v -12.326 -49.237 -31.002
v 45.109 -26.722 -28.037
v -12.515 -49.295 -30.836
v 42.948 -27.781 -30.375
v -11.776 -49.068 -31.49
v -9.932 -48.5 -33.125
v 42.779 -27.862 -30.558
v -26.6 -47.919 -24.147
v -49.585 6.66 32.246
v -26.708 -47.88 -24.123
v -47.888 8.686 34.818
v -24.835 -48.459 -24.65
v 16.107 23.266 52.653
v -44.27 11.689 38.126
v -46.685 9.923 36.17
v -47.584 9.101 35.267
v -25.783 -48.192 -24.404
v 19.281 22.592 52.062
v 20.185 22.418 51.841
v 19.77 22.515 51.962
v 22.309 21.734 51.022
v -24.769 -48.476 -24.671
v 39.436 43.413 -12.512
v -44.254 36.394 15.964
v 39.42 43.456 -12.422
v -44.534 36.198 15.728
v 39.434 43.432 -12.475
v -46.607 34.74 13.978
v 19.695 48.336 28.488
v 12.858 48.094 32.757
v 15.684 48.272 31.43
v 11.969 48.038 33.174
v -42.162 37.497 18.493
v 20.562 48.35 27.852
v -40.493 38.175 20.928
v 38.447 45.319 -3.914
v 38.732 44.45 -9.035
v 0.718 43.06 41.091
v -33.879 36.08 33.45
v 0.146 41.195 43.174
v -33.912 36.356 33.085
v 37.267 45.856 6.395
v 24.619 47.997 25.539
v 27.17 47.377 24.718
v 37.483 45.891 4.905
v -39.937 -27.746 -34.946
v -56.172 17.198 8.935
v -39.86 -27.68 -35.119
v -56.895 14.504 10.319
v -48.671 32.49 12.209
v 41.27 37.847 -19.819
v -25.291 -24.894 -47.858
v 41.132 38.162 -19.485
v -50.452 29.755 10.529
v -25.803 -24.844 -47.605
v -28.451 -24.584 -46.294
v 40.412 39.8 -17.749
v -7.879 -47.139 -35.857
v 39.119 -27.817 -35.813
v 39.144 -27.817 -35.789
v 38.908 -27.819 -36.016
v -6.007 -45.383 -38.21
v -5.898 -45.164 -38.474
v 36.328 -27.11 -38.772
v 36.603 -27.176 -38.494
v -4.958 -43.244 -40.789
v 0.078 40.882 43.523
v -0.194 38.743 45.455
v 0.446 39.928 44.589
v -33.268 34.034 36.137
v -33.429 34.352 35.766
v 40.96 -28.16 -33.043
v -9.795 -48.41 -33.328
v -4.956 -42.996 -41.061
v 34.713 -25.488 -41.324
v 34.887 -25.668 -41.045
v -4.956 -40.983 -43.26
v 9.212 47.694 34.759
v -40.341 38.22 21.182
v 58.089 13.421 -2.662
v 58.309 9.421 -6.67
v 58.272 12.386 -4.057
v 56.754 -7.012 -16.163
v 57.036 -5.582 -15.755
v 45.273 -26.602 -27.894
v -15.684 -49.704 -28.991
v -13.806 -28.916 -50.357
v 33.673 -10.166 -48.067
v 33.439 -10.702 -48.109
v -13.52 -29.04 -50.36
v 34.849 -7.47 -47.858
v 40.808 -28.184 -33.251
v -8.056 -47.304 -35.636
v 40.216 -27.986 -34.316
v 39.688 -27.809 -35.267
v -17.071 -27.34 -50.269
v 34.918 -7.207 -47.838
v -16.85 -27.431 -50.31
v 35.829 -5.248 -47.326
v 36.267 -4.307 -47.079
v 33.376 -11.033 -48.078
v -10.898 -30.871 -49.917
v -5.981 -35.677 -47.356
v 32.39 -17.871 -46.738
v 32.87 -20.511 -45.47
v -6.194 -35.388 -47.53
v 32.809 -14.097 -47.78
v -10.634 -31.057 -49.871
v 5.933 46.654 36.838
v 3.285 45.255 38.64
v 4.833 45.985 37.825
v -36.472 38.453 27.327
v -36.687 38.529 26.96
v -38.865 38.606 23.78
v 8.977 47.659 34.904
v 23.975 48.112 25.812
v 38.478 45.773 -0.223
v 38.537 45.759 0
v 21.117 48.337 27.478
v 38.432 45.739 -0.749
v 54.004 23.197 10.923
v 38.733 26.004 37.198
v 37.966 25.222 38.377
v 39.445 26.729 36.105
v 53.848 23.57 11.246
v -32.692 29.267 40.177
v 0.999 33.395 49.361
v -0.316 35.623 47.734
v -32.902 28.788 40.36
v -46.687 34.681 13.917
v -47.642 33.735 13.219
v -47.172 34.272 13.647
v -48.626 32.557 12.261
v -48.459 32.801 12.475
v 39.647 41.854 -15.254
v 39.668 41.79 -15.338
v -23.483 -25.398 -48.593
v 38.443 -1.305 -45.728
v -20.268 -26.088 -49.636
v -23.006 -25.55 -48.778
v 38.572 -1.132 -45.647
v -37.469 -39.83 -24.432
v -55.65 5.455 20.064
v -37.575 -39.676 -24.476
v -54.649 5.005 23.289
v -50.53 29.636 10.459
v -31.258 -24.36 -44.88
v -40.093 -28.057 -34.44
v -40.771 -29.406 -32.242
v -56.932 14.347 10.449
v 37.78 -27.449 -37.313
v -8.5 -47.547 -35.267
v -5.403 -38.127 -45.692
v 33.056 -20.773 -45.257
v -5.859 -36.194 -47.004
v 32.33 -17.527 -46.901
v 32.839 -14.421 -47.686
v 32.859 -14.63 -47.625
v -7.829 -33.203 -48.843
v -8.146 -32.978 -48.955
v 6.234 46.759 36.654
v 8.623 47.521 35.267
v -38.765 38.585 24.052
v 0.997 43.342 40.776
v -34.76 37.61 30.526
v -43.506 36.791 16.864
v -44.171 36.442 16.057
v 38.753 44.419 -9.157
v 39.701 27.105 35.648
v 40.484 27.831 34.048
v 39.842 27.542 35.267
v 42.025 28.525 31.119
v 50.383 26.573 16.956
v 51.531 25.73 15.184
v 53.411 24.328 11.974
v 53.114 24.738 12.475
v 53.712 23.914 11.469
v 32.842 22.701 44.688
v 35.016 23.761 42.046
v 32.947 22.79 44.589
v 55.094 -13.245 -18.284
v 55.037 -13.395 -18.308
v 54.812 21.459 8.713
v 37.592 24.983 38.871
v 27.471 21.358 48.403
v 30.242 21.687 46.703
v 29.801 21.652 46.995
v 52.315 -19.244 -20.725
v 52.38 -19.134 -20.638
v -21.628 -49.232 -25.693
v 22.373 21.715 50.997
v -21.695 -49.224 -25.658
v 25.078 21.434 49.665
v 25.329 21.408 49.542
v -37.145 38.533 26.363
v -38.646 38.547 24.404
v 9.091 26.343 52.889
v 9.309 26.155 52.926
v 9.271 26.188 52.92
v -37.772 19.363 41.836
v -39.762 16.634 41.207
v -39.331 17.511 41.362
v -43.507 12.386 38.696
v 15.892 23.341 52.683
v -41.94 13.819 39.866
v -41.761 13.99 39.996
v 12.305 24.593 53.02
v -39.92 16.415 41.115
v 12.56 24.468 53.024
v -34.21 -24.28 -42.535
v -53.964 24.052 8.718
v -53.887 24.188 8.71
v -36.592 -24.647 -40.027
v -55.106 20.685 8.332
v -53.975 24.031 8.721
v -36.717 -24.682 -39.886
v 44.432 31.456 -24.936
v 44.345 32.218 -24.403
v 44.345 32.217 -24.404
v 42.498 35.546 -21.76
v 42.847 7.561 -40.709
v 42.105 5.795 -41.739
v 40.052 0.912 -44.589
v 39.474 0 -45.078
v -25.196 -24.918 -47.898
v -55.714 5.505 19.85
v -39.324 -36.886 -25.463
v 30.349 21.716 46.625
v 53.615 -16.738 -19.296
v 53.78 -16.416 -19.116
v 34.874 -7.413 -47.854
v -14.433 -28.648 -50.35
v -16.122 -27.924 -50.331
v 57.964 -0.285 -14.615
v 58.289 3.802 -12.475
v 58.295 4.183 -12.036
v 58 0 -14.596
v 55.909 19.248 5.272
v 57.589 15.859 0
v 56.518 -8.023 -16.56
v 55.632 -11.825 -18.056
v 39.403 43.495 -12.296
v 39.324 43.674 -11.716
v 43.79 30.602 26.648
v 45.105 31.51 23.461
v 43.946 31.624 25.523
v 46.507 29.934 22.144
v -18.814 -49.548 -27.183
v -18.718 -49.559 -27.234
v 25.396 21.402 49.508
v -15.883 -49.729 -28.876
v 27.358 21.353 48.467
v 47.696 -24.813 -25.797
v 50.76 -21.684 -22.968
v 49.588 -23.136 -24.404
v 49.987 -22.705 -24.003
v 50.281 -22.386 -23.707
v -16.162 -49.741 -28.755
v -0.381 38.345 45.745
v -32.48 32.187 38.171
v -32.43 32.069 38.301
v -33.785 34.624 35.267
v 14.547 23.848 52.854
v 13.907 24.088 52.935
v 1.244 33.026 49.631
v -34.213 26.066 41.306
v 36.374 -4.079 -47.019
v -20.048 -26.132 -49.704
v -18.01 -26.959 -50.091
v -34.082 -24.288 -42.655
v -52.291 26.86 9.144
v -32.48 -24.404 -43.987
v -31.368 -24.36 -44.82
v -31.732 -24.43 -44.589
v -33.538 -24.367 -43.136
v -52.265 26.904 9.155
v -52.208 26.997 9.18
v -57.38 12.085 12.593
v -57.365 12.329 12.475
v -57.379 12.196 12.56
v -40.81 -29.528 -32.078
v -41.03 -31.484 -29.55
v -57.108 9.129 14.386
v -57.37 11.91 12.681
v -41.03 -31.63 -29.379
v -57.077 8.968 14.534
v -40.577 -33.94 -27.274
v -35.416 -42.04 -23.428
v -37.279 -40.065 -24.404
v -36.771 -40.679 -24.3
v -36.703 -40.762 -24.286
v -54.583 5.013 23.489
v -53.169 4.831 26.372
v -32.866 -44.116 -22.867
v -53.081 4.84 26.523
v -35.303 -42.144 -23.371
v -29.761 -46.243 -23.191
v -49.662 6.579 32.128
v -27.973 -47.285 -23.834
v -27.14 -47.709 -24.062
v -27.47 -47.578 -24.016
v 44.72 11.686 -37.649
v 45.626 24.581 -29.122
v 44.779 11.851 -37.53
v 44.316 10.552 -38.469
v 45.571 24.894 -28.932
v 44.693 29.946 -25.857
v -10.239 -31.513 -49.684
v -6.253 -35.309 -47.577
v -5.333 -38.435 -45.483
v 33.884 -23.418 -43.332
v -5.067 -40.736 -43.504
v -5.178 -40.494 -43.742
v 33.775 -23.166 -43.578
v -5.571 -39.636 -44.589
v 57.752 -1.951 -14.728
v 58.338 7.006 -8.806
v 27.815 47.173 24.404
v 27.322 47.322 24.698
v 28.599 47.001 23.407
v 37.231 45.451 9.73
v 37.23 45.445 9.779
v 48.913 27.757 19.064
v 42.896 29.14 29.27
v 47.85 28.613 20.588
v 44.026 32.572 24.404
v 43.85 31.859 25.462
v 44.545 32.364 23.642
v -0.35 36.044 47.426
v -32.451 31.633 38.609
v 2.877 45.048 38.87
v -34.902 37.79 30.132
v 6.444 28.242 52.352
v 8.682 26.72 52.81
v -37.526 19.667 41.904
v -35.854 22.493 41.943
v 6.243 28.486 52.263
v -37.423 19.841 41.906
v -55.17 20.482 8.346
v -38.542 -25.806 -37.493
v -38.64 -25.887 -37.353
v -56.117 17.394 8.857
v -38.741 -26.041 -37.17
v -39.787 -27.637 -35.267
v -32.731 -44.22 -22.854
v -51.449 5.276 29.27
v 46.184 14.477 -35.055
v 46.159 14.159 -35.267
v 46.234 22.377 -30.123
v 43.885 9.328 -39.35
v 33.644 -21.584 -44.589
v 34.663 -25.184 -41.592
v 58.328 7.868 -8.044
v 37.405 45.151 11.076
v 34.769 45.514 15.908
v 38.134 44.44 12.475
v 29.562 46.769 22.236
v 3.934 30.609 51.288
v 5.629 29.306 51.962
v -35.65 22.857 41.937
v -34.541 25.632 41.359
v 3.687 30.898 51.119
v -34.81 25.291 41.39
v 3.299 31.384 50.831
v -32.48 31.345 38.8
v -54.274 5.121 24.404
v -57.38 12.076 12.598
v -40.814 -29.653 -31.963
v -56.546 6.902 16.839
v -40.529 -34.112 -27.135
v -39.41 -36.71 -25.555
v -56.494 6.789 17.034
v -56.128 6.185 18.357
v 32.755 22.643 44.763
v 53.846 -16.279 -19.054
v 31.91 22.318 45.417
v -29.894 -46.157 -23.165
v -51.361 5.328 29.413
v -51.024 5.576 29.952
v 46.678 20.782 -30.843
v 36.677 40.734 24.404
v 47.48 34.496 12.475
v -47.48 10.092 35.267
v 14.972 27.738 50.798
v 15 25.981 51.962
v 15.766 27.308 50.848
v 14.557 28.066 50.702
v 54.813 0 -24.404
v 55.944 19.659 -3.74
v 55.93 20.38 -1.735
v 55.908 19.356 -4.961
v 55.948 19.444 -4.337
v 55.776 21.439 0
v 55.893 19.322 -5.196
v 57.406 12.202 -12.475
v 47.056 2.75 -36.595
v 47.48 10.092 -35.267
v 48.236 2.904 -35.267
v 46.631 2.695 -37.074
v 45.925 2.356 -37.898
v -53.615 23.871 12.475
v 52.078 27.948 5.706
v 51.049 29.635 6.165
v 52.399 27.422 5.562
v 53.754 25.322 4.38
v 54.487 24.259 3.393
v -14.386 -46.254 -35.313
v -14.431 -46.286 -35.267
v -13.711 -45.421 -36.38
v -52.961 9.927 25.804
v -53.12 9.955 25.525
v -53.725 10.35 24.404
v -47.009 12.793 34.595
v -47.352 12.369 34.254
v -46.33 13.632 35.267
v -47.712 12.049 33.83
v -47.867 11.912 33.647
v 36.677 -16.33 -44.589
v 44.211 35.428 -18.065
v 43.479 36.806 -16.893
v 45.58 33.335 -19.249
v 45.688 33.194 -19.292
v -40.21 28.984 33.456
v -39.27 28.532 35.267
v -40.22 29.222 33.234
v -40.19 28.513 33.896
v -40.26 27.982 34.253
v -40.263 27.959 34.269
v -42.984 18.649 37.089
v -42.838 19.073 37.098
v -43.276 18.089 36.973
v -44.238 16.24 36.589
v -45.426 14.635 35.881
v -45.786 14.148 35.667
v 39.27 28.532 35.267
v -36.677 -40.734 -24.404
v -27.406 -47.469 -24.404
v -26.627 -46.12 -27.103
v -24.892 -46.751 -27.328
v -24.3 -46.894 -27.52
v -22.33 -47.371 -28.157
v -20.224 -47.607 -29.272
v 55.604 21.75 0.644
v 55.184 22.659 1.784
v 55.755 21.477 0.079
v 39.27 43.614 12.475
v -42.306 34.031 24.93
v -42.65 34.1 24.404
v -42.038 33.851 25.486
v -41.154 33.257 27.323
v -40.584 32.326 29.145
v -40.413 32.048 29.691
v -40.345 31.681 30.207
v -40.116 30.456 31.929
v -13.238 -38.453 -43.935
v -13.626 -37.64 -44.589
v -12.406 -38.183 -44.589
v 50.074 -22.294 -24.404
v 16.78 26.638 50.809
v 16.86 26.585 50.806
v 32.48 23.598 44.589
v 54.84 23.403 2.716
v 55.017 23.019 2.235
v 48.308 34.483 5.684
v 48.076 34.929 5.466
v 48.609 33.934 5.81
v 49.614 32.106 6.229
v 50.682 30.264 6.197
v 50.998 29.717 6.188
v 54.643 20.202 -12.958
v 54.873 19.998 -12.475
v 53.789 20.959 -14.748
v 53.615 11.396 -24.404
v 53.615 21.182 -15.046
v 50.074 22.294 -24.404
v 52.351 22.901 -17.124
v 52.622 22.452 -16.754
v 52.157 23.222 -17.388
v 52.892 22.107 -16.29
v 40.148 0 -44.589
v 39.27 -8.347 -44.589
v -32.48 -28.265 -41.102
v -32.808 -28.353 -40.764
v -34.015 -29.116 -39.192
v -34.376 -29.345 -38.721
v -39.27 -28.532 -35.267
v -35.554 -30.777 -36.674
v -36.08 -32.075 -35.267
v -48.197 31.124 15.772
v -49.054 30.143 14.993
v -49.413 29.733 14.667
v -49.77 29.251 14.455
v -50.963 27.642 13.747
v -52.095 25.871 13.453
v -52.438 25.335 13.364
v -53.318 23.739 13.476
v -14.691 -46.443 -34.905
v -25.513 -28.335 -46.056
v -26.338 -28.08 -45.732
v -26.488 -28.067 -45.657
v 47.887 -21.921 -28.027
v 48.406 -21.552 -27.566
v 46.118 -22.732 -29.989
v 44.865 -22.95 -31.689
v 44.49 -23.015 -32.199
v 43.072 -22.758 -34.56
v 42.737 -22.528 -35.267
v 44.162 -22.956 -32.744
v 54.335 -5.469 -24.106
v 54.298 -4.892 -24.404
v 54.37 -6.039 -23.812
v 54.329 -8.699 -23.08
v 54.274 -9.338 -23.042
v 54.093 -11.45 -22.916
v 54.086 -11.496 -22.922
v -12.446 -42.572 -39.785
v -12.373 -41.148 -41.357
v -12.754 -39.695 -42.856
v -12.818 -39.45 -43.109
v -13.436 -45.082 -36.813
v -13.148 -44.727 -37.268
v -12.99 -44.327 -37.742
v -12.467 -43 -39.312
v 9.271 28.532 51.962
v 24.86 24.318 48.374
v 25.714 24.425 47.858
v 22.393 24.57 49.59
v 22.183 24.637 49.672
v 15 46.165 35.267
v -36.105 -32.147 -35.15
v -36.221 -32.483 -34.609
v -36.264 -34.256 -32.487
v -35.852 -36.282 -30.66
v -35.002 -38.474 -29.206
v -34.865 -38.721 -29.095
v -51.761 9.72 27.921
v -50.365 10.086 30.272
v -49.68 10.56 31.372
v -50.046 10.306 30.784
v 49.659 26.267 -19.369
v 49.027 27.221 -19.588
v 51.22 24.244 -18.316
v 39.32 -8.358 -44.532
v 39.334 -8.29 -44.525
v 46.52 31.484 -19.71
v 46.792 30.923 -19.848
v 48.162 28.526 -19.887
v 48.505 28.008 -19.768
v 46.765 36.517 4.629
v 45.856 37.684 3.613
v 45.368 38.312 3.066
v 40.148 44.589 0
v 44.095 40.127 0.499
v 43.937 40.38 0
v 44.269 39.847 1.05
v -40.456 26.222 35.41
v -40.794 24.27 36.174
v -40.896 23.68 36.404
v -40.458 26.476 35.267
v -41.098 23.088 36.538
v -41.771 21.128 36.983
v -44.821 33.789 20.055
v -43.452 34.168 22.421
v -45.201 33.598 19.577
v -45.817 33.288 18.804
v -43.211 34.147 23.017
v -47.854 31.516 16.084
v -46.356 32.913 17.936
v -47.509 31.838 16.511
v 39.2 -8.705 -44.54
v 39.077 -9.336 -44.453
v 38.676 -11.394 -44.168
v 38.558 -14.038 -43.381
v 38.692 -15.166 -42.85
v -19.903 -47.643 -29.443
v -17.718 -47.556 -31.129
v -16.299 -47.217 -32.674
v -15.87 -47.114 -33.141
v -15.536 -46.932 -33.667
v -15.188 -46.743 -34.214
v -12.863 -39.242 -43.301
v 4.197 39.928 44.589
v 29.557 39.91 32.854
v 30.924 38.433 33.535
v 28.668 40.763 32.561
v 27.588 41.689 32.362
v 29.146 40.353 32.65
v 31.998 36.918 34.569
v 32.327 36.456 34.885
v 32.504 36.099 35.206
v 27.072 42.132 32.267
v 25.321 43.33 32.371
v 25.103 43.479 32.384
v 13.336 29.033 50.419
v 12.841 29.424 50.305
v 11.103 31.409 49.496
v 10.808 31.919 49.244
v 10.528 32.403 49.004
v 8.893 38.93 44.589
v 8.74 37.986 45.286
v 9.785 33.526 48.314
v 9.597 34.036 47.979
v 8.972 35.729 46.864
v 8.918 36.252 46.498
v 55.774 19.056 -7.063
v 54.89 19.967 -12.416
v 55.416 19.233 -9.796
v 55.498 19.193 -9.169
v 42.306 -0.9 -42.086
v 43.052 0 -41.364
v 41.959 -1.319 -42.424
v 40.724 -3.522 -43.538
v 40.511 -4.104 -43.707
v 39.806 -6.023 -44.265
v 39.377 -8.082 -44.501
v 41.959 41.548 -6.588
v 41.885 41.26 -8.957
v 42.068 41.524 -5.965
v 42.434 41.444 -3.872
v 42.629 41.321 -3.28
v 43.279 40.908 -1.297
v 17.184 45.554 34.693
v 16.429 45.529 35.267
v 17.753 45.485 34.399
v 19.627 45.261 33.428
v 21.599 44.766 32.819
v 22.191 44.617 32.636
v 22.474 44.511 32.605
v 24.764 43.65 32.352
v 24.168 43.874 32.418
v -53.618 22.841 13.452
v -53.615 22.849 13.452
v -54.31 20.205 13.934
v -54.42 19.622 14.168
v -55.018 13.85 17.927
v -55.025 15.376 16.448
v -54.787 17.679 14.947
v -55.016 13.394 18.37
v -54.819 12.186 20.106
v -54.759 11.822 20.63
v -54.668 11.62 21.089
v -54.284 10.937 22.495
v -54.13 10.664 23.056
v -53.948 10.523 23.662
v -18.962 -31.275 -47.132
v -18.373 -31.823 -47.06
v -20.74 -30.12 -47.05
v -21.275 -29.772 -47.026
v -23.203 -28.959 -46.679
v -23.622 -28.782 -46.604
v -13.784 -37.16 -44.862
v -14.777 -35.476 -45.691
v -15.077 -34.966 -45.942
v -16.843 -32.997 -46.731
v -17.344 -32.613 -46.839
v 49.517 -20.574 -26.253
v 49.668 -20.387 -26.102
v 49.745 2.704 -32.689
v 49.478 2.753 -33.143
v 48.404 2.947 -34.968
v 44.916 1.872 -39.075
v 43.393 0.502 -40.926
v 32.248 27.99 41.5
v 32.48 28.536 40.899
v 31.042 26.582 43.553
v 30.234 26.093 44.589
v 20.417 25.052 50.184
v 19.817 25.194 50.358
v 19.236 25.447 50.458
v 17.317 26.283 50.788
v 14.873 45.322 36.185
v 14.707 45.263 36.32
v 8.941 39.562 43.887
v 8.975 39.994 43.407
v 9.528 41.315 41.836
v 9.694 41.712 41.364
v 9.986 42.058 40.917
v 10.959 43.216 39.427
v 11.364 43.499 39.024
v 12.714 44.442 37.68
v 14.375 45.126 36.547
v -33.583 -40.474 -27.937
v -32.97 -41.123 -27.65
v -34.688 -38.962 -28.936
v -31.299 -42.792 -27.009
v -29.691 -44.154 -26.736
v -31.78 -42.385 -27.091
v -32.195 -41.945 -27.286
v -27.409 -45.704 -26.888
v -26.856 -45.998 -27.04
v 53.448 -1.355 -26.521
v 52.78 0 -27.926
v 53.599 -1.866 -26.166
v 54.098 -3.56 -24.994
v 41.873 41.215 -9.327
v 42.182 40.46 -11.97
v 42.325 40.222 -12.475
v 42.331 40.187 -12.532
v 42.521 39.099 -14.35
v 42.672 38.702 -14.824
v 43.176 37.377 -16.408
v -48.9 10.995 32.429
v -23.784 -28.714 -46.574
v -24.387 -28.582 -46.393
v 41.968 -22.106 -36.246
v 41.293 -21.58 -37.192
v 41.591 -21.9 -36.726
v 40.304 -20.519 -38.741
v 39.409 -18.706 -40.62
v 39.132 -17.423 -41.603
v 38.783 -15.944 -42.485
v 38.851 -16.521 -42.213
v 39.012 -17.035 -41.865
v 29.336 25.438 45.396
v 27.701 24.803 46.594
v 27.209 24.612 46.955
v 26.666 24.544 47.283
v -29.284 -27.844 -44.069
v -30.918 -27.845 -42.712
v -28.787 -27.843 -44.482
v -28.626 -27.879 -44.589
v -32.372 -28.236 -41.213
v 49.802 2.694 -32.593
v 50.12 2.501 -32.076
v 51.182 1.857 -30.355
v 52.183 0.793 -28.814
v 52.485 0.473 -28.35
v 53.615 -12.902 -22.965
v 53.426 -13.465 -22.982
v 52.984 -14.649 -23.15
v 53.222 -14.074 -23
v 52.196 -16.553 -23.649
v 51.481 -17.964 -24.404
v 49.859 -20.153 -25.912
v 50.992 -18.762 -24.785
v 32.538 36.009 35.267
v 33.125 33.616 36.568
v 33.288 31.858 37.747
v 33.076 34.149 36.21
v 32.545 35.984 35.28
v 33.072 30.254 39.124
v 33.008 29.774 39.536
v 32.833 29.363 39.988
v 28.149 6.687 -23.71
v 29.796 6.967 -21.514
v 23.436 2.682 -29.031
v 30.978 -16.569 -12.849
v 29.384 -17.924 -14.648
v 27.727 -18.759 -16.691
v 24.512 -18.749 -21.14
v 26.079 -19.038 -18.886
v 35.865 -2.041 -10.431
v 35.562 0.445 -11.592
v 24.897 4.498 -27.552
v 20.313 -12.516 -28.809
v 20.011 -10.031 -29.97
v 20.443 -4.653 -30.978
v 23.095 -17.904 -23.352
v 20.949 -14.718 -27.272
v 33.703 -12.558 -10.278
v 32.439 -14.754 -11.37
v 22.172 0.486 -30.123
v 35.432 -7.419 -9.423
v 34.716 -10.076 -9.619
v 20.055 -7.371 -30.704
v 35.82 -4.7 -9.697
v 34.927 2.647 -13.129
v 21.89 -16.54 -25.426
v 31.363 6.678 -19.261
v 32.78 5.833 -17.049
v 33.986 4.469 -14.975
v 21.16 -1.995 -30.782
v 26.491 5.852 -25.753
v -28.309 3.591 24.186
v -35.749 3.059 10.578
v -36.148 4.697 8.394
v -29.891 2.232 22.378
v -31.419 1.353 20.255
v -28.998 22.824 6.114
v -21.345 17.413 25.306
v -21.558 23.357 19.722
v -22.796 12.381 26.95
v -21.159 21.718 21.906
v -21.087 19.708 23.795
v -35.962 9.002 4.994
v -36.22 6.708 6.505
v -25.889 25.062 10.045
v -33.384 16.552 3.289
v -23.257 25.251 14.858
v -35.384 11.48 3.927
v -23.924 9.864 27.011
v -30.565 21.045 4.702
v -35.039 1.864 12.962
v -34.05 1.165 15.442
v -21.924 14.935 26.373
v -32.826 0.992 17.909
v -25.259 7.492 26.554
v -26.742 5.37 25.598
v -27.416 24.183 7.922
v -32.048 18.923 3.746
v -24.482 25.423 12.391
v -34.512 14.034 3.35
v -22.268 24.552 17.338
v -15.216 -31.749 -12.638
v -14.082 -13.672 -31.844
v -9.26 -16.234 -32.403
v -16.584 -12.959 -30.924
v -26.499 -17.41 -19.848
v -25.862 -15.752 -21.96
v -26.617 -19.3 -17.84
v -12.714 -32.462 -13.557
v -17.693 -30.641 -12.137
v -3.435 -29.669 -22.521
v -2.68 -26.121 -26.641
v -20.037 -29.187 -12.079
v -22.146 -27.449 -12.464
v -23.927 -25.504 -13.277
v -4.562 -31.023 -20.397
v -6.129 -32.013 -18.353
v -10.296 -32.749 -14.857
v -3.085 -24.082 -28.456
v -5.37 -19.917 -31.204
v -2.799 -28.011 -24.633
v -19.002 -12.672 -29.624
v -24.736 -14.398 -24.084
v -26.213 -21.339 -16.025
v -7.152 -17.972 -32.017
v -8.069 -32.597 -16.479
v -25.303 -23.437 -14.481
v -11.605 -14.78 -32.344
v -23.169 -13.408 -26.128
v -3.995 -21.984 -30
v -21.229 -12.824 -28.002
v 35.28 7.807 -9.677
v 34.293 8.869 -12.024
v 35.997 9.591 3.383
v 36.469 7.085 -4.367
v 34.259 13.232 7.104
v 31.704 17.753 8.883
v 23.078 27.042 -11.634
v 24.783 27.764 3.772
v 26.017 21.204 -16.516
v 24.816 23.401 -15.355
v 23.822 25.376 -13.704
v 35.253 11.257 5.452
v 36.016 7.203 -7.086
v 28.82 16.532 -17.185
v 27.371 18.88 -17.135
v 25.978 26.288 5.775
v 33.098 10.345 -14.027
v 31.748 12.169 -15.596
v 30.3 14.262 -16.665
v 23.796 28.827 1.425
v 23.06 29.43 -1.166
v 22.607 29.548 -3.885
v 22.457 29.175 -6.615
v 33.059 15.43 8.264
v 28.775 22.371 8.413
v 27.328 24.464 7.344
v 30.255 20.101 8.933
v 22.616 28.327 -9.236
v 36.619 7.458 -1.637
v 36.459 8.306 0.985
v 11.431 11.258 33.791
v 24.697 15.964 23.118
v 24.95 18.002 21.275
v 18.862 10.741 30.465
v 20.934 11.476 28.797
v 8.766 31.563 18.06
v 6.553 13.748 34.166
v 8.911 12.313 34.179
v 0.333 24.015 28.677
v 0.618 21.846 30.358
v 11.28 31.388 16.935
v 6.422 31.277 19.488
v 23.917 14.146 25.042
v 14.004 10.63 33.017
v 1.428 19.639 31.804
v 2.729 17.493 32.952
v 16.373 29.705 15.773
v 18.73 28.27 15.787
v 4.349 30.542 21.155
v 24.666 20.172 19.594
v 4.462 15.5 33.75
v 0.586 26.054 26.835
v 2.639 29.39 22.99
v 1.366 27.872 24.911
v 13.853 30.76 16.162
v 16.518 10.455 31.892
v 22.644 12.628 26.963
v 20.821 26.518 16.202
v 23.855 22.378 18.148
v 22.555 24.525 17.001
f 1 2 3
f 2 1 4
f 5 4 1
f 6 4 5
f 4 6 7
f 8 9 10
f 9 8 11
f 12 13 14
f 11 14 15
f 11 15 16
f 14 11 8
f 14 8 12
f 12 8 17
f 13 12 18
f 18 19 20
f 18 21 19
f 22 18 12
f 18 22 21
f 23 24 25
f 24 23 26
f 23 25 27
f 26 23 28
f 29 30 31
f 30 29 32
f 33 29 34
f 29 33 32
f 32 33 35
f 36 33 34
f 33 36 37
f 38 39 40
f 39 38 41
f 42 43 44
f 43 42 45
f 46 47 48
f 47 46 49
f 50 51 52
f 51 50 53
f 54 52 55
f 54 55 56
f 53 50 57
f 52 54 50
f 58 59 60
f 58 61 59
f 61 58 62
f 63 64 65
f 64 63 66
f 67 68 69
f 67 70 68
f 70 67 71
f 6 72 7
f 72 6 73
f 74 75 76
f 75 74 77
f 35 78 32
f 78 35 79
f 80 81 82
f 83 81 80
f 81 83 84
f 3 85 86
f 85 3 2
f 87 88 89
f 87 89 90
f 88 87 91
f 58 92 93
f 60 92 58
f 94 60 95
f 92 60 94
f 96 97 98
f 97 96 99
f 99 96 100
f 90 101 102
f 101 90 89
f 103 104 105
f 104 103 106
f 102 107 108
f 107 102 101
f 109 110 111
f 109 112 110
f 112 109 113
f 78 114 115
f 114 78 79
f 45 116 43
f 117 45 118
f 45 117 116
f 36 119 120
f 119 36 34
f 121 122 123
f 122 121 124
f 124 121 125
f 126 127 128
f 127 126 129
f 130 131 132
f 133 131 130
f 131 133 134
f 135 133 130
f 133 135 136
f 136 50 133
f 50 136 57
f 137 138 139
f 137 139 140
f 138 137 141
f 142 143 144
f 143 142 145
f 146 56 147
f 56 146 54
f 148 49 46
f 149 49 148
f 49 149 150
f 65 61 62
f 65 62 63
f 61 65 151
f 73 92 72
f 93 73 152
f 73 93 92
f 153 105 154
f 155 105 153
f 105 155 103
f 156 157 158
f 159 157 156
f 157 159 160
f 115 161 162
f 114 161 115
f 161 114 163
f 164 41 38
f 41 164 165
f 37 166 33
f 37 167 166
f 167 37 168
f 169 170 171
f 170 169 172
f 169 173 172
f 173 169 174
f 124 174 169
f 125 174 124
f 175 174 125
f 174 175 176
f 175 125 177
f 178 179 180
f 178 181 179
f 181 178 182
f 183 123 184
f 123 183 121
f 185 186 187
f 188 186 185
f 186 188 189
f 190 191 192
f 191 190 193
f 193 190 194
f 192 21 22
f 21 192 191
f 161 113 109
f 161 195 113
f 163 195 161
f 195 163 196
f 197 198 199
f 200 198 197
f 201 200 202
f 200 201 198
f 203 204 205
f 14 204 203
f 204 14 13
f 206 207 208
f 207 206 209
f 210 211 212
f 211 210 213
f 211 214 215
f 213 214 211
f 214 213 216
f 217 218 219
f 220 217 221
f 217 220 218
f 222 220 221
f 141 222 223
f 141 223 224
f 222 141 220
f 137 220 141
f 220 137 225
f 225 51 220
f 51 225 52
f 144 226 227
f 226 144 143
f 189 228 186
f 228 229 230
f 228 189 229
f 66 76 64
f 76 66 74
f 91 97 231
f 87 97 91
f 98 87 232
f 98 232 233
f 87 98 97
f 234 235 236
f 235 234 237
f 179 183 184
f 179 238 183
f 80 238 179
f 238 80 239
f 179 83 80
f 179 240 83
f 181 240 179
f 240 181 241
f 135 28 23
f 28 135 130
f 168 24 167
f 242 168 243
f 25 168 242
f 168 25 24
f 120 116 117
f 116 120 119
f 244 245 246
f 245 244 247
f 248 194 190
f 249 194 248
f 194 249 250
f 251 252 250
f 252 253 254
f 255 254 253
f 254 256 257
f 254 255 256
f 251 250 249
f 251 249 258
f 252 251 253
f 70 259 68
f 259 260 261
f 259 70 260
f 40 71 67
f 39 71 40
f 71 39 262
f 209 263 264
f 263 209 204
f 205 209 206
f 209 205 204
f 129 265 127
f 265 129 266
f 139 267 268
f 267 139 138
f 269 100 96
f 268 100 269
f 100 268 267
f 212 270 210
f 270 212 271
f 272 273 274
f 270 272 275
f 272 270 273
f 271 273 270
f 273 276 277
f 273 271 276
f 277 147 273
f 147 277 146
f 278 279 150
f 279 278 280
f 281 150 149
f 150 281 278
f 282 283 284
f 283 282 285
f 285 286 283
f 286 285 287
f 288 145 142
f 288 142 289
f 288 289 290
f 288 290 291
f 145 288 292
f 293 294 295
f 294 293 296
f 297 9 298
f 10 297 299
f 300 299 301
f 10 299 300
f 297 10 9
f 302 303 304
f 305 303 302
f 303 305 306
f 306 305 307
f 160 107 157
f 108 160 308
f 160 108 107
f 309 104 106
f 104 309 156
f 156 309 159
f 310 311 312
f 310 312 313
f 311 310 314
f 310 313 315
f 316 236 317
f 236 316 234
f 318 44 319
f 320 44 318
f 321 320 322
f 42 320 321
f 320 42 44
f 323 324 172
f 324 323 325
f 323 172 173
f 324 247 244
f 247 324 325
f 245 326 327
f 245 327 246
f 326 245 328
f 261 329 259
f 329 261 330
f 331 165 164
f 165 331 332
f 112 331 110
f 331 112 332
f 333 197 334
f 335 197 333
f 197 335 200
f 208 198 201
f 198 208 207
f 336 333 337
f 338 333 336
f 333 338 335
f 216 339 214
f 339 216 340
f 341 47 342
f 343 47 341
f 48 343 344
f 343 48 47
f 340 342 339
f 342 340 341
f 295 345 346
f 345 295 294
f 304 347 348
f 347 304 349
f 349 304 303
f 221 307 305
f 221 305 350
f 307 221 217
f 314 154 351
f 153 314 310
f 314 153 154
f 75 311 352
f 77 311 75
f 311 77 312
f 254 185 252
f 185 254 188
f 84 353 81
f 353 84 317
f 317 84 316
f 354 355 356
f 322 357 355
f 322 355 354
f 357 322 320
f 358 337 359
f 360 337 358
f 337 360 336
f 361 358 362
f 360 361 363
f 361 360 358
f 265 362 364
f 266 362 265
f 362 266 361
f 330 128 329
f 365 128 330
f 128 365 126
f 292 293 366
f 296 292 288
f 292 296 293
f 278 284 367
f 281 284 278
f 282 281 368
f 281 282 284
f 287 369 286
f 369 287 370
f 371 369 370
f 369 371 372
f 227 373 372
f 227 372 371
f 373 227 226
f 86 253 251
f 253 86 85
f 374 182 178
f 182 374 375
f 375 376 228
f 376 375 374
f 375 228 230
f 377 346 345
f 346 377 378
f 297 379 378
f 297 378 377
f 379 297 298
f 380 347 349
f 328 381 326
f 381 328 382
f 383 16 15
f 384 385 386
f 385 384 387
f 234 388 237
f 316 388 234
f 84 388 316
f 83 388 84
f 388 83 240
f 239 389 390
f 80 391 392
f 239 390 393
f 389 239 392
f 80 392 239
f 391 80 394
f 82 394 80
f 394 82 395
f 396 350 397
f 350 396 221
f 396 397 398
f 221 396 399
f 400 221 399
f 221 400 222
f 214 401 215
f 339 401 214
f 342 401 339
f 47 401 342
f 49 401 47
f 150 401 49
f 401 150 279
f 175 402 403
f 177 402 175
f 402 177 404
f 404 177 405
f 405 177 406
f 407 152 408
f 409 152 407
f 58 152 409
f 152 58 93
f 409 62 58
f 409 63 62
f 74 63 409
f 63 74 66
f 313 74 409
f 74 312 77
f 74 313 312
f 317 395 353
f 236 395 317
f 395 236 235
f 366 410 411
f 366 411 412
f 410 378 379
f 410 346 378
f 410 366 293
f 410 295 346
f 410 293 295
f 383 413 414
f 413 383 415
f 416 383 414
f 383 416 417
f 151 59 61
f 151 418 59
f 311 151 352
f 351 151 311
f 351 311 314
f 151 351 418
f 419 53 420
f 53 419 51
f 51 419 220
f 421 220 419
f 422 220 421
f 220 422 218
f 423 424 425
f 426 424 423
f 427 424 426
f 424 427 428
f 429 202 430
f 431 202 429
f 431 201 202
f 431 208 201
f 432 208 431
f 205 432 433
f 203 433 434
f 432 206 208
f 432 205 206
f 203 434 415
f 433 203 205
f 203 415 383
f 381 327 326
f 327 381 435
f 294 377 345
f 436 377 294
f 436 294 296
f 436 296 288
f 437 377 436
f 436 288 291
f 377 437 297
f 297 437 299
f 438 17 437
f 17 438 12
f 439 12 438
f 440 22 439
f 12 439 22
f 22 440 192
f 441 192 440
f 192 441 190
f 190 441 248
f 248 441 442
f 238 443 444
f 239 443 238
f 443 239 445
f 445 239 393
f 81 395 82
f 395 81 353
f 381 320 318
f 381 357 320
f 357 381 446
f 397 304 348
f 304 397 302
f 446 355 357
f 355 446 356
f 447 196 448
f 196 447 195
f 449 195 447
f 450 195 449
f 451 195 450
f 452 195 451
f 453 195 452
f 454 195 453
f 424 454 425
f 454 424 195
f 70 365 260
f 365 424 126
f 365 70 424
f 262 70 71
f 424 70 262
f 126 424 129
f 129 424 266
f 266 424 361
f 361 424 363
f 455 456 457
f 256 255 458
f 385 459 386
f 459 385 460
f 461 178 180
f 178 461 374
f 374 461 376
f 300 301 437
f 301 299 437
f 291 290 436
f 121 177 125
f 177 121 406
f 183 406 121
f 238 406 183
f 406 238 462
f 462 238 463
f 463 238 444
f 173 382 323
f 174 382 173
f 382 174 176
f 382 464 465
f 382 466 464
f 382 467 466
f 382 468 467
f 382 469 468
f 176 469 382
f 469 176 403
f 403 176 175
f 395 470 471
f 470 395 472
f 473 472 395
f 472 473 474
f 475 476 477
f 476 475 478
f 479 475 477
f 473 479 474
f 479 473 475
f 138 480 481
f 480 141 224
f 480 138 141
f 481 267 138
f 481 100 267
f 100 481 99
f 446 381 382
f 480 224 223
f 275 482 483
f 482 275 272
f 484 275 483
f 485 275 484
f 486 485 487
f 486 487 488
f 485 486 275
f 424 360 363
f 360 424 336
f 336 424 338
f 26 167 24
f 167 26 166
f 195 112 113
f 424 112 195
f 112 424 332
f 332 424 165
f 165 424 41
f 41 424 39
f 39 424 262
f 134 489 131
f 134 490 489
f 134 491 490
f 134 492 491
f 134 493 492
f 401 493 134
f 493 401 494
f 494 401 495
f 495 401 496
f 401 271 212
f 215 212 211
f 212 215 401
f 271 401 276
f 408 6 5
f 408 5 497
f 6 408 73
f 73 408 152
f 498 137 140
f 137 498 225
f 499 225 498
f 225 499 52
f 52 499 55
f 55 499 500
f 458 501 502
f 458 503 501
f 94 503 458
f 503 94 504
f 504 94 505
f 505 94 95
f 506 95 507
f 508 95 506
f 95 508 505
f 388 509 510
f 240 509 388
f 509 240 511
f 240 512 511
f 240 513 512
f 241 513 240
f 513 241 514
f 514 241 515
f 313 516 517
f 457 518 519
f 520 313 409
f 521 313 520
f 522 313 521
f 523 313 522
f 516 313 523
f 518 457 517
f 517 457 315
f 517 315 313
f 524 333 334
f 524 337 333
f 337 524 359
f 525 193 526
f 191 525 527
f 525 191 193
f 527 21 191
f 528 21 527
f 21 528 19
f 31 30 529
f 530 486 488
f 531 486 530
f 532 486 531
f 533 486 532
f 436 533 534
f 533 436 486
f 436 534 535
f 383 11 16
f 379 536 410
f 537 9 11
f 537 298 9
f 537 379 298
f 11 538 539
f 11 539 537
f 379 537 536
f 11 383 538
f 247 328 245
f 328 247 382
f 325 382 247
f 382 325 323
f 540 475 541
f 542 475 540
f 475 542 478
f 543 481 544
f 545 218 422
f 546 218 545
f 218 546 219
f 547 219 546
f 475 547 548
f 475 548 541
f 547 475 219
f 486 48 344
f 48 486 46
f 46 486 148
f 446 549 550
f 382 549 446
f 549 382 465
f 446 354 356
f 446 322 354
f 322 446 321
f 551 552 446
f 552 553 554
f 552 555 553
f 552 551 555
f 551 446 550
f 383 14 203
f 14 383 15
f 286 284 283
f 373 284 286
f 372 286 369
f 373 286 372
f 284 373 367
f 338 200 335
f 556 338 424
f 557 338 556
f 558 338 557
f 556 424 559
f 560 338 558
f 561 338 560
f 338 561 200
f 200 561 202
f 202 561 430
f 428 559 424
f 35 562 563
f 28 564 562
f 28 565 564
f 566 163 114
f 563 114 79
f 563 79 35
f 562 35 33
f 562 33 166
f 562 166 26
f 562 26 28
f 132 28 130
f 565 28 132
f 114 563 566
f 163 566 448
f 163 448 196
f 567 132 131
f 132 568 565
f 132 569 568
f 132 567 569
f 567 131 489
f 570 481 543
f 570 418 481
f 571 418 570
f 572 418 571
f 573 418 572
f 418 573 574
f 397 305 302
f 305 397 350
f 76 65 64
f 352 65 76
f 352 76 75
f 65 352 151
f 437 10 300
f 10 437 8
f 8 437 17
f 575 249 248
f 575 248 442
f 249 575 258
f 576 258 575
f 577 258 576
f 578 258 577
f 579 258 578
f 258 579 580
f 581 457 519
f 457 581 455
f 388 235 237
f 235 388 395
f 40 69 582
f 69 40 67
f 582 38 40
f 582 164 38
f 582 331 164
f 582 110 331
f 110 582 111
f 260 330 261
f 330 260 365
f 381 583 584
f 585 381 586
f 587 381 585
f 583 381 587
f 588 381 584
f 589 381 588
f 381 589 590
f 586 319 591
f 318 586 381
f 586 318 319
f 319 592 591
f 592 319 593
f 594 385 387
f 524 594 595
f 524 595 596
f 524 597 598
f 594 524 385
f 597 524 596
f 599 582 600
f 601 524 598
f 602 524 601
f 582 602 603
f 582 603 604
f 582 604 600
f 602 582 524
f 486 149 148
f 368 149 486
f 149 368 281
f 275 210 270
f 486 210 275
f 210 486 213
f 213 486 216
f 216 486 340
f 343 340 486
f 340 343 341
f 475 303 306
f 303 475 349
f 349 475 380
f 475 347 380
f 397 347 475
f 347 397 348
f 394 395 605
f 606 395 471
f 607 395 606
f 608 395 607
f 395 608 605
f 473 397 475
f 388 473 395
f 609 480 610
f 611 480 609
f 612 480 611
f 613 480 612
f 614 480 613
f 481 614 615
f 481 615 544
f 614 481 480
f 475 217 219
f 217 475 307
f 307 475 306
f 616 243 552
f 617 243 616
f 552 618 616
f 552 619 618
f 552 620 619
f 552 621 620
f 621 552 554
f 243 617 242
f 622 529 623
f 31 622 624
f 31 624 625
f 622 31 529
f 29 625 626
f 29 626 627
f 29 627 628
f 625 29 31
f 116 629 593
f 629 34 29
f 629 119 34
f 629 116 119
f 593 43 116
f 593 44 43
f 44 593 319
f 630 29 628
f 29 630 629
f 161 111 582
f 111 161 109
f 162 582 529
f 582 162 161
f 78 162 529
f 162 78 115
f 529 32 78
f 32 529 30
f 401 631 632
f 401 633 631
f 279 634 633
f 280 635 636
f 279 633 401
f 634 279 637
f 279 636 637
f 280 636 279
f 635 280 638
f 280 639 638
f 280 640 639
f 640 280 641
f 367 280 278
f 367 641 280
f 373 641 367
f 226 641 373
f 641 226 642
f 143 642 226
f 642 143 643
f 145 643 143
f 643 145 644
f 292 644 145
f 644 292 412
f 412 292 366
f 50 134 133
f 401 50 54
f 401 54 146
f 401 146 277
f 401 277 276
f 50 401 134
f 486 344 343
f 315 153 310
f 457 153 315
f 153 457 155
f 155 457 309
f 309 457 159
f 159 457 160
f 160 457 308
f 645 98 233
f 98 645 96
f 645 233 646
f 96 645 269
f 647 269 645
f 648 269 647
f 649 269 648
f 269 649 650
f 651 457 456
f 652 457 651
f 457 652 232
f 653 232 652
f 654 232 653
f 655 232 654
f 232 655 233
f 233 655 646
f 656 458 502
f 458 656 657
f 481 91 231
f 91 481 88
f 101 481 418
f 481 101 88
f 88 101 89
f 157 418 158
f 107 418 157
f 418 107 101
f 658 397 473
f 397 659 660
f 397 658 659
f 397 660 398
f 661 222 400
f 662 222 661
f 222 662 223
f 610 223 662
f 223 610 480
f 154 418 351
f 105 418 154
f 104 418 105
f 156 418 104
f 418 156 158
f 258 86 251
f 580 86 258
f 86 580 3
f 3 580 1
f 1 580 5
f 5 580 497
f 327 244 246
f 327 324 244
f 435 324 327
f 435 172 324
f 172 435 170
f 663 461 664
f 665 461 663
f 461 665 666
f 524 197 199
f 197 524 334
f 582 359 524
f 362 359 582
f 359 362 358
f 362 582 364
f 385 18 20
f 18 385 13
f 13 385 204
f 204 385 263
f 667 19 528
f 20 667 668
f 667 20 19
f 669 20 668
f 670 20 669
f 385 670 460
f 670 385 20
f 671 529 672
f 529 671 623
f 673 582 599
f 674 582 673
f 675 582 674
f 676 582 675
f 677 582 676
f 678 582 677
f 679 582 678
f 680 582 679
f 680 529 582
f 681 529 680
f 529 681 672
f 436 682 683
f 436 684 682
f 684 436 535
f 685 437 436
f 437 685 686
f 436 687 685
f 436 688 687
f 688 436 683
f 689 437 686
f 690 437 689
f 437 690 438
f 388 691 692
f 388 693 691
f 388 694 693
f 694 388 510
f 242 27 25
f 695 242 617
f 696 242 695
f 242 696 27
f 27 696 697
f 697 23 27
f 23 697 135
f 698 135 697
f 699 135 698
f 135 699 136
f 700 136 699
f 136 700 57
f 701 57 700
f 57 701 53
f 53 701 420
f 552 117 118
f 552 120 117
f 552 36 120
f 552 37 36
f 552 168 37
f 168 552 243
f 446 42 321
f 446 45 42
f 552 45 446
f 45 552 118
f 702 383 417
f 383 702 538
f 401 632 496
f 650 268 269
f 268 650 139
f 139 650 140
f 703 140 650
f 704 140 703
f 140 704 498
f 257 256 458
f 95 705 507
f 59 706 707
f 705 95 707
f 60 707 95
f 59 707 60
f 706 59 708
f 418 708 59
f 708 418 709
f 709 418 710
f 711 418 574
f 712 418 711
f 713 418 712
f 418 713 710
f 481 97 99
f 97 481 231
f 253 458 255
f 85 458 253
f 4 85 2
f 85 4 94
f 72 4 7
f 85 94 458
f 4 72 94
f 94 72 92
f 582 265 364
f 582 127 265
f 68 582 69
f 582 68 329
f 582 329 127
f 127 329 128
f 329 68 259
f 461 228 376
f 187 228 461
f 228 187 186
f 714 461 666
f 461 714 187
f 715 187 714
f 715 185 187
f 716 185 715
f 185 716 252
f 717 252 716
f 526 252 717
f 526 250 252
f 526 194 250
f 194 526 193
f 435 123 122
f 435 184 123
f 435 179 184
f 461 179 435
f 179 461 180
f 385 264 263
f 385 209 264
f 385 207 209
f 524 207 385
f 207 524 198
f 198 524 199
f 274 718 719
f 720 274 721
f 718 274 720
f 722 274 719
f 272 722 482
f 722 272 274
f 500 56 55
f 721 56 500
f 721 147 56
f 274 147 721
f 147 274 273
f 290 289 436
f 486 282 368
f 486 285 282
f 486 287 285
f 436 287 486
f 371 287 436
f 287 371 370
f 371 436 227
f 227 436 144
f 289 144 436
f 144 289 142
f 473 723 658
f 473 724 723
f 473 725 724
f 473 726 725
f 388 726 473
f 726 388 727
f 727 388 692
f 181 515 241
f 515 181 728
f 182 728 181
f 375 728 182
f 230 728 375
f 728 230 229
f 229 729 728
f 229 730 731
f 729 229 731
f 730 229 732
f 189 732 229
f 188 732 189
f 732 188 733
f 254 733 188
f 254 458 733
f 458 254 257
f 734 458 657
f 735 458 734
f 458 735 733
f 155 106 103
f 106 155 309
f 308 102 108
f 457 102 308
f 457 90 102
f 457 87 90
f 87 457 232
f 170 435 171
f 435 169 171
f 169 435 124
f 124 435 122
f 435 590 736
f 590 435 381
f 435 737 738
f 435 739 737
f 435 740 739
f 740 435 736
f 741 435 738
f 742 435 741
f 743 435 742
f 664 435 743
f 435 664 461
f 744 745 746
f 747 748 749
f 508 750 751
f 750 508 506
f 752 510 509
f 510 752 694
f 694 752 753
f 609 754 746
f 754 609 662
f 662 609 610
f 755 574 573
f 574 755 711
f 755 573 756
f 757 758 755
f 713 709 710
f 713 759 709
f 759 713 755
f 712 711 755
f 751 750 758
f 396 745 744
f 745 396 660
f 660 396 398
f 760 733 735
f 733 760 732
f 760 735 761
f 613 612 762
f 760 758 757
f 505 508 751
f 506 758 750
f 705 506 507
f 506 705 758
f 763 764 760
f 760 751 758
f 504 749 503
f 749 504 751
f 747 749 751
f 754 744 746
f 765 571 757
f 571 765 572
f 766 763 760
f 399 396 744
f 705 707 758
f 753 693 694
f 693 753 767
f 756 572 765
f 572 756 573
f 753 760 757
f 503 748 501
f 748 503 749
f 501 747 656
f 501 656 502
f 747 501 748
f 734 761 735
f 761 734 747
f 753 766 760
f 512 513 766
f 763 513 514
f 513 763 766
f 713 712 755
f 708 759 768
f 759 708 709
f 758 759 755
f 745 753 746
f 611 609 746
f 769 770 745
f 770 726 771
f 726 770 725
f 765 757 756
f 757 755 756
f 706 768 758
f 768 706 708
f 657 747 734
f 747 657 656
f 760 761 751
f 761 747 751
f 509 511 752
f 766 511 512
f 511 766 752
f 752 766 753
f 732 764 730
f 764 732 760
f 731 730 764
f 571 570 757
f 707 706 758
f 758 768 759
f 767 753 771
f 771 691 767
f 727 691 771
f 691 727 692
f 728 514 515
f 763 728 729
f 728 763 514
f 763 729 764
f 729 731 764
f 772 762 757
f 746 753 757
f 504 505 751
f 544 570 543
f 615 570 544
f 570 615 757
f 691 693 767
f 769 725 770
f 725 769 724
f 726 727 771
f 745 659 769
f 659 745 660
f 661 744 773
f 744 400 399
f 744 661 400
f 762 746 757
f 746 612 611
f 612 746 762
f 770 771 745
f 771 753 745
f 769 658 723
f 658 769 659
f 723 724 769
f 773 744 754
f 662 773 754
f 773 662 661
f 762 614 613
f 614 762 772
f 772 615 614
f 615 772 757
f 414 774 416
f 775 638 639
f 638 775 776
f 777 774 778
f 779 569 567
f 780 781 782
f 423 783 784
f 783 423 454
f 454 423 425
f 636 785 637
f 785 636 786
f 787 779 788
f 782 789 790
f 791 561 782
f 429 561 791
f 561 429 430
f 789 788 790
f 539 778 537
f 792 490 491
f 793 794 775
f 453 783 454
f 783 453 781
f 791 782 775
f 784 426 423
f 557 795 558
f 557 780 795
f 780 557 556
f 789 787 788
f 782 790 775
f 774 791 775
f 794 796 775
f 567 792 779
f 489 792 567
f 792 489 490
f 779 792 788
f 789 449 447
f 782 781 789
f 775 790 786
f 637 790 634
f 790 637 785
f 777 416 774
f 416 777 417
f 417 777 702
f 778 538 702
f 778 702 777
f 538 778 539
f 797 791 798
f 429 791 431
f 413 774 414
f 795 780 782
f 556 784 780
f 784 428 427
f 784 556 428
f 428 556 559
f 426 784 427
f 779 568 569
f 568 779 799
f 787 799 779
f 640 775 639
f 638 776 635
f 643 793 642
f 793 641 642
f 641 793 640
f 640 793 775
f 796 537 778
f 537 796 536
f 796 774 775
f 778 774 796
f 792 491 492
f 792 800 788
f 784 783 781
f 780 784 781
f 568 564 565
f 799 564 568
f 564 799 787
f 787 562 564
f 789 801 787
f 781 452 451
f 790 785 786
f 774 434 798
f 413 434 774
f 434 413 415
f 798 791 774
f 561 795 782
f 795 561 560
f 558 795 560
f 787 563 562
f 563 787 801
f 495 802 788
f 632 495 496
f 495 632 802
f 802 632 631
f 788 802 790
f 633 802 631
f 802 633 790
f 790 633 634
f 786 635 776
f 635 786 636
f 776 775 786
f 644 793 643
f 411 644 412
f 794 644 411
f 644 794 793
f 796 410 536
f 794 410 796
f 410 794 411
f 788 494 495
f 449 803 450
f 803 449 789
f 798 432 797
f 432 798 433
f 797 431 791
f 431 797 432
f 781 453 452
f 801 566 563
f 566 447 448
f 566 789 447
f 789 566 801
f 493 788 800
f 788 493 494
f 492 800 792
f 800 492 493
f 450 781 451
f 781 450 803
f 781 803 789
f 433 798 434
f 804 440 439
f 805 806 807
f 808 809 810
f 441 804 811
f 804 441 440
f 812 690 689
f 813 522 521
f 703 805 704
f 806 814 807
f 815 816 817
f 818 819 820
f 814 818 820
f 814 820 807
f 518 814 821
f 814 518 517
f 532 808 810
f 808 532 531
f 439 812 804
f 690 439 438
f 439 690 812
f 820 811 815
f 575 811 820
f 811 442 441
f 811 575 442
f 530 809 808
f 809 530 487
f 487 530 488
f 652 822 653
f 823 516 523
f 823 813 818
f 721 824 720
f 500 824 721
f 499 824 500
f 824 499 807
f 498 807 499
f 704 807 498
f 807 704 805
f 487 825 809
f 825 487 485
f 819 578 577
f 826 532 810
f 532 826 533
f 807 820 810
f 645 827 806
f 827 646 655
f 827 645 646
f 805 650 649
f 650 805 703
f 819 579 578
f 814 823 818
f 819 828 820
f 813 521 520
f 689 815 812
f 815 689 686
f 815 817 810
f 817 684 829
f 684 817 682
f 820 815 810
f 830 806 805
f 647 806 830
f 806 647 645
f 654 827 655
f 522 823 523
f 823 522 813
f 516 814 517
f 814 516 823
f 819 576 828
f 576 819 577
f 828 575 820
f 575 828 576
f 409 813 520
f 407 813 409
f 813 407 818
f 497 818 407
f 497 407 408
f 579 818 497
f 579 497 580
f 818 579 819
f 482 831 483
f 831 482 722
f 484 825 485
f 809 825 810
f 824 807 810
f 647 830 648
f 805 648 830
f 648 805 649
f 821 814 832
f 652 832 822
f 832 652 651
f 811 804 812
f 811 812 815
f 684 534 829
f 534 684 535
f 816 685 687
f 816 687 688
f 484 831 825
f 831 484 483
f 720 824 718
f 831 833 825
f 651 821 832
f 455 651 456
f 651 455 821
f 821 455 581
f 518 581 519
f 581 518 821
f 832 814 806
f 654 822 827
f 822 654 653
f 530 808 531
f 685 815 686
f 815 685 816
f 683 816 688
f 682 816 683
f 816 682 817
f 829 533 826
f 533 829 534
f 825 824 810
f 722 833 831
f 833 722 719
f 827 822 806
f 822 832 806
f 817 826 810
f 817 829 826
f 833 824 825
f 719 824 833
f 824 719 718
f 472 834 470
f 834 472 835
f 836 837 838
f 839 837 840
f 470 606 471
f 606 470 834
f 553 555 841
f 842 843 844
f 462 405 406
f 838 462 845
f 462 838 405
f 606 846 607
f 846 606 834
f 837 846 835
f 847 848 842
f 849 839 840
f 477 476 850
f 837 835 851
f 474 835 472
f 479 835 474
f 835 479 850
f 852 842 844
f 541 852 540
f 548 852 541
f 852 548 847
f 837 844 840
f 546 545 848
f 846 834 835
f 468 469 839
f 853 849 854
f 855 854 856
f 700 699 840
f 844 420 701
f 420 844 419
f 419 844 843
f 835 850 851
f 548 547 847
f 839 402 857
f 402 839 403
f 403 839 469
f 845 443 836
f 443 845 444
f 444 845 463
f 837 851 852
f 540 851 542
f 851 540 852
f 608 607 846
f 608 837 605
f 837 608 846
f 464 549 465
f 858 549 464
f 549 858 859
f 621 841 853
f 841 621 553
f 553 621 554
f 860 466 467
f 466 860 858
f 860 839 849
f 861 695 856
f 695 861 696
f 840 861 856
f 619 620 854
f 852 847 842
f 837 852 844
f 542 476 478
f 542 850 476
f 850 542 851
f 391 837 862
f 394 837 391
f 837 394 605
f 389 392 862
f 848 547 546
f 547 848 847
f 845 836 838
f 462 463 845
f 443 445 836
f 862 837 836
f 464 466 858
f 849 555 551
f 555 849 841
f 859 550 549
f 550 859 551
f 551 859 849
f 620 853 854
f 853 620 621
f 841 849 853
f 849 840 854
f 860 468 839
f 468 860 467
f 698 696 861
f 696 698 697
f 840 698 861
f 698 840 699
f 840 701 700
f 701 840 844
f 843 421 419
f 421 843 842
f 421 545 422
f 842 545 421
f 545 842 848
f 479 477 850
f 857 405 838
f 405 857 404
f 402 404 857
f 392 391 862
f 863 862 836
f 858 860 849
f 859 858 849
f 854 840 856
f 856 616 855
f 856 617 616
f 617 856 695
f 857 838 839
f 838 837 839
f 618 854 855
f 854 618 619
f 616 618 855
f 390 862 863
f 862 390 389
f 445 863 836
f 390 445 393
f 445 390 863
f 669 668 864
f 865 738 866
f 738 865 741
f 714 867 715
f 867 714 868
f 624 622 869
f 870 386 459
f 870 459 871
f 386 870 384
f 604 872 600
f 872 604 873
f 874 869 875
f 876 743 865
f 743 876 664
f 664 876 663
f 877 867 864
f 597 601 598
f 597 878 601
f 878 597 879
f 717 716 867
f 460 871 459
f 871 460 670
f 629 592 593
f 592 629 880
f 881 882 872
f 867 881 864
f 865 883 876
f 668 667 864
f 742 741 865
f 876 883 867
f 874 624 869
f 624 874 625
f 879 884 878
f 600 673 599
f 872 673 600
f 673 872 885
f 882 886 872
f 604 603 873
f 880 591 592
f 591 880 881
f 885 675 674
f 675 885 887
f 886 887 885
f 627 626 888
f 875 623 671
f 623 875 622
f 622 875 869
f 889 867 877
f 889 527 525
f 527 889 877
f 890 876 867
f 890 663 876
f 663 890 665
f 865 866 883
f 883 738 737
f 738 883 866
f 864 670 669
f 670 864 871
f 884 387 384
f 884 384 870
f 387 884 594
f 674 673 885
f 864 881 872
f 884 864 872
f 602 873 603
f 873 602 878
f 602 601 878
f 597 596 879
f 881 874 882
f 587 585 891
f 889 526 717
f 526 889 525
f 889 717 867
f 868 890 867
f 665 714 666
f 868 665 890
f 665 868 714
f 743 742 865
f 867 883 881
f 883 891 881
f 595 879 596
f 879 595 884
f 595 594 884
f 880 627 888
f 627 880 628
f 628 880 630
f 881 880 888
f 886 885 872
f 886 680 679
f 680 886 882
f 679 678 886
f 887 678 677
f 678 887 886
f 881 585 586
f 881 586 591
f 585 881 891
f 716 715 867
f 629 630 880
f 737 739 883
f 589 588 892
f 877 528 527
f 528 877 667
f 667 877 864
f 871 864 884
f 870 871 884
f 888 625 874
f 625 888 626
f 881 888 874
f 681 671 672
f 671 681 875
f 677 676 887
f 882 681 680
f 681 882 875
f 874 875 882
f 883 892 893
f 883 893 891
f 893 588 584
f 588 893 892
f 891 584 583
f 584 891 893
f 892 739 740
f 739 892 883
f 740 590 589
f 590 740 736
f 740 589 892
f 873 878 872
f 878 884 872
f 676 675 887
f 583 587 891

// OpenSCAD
difference() {
	intersection() {
		hull() {
			rotate(a = -129.9067974239, v = [-0.5090470719, 0.5738437800, 0.0000000000]) {
				rotate(a = -90.0000000000, v = [-0.9920645329, 0.1257297202, 0.0000000000]) {
					cylinder(h = 60, r = 16.2000000000);
				}
			}
			rotate(a = -129.9067974239, v = [-0.5090470719, 0.5738437800, 0.0000000000]) {
				rotate(a = -90.0000000000, v = [0.9920645329, 0.1257297202, -0.0000000000]) {
					cylinder(h = 60, r = 16.2000000000);
				}
			}
			rotate(a = -129.9067974239, v = [-0.5090470719, 0.5738437800, 0.0000000000]) {
				rotate(a = -12.0005518641, v = [-0.1622053831, -0.1300792166, 0.0000000000]) {
					cylinder(h = 60, r = 16.2000000000);
				}
			}
			rotate(a = -129.9067974239, v = [-0.5090470719, 0.5738437800, 0.0000000000]) {
				rotate(a = -132.4587967935, v = [-0.6027272371, 0.4254575171, 0.0000000000]) {
					cylinder(h = 60, r = 16.2000000000);
				}
			}
			rotate(a = -129.9067974239, v = [-0.5090470719, 0.5738437800, 0.0000000000]) {
				rotate(a = -166.0804100829, v = [0.2352489188, 0.0502695095, -0.0000000000]) {
					cylinder(h = 60, r = 16.2000000000);
				}
			}
		}
		sphere(r = 60);
	}
	union() {
		rotate(a = -129.9067974239, v = [-0.5090470719, 0.5738437800, 0.0000000000]) {
			rotate(a = -90.0000000000, v = [-0.9920645329, 0.1257297202, 0.0000000000]) {
				translate(v = [0, 0, 35]) {
					cylinder(h = 100, r = 13.2000000000);
				}
			}
		}
		rotate(a = -129.9067974239, v = [-0.5090470719, 0.5738437800, 0.0000000000]) {
			rotate(a = -90.0000000000, v = [0.9920645329, 0.1257297202, -0.0000000000]) {
				translate(v = [0, 0, 35]) {
					cylinder(h = 100, r = 13.2000000000);
				}
			}
		}
		rotate(a = -129.9067974239, v = [-0.5090470719, 0.5738437800, 0.0000000000]) {
			rotate(a = -12.0005518641, v = [-0.1622053831, -0.1300792166, 0.0000000000]) {
				translate(v = [0, 0, 35]) {
					cylinder(h = 100, r = 13.2000000000);
				}
			}
		}
		rotate(a = -129.9067974239, v = [-0.5090470719, 0.5738437800, 0.0000000000]) {
			rotate(a = -132.4587967935, v = [-0.6027272371, 0.4254575171, 0.0000000000]) {
				translate(v = [0, 0, 35]) {
					cylinder(h = 100, r = 13.2000000000);
				}
			}
		}
		rotate(a = -129.9067974239, v = [-0.5090470719, 0.5738437800, 0.0000000000]) {
			rotate(a = -166.0804100829, v = [0.2352489188, 0.0502695095, -0.0000000000]) {
				translate(v = [0, 0, 35]) {
					cylinder(h = 100, r = 13.2000000000);
				}
			}
		}
	}
}
